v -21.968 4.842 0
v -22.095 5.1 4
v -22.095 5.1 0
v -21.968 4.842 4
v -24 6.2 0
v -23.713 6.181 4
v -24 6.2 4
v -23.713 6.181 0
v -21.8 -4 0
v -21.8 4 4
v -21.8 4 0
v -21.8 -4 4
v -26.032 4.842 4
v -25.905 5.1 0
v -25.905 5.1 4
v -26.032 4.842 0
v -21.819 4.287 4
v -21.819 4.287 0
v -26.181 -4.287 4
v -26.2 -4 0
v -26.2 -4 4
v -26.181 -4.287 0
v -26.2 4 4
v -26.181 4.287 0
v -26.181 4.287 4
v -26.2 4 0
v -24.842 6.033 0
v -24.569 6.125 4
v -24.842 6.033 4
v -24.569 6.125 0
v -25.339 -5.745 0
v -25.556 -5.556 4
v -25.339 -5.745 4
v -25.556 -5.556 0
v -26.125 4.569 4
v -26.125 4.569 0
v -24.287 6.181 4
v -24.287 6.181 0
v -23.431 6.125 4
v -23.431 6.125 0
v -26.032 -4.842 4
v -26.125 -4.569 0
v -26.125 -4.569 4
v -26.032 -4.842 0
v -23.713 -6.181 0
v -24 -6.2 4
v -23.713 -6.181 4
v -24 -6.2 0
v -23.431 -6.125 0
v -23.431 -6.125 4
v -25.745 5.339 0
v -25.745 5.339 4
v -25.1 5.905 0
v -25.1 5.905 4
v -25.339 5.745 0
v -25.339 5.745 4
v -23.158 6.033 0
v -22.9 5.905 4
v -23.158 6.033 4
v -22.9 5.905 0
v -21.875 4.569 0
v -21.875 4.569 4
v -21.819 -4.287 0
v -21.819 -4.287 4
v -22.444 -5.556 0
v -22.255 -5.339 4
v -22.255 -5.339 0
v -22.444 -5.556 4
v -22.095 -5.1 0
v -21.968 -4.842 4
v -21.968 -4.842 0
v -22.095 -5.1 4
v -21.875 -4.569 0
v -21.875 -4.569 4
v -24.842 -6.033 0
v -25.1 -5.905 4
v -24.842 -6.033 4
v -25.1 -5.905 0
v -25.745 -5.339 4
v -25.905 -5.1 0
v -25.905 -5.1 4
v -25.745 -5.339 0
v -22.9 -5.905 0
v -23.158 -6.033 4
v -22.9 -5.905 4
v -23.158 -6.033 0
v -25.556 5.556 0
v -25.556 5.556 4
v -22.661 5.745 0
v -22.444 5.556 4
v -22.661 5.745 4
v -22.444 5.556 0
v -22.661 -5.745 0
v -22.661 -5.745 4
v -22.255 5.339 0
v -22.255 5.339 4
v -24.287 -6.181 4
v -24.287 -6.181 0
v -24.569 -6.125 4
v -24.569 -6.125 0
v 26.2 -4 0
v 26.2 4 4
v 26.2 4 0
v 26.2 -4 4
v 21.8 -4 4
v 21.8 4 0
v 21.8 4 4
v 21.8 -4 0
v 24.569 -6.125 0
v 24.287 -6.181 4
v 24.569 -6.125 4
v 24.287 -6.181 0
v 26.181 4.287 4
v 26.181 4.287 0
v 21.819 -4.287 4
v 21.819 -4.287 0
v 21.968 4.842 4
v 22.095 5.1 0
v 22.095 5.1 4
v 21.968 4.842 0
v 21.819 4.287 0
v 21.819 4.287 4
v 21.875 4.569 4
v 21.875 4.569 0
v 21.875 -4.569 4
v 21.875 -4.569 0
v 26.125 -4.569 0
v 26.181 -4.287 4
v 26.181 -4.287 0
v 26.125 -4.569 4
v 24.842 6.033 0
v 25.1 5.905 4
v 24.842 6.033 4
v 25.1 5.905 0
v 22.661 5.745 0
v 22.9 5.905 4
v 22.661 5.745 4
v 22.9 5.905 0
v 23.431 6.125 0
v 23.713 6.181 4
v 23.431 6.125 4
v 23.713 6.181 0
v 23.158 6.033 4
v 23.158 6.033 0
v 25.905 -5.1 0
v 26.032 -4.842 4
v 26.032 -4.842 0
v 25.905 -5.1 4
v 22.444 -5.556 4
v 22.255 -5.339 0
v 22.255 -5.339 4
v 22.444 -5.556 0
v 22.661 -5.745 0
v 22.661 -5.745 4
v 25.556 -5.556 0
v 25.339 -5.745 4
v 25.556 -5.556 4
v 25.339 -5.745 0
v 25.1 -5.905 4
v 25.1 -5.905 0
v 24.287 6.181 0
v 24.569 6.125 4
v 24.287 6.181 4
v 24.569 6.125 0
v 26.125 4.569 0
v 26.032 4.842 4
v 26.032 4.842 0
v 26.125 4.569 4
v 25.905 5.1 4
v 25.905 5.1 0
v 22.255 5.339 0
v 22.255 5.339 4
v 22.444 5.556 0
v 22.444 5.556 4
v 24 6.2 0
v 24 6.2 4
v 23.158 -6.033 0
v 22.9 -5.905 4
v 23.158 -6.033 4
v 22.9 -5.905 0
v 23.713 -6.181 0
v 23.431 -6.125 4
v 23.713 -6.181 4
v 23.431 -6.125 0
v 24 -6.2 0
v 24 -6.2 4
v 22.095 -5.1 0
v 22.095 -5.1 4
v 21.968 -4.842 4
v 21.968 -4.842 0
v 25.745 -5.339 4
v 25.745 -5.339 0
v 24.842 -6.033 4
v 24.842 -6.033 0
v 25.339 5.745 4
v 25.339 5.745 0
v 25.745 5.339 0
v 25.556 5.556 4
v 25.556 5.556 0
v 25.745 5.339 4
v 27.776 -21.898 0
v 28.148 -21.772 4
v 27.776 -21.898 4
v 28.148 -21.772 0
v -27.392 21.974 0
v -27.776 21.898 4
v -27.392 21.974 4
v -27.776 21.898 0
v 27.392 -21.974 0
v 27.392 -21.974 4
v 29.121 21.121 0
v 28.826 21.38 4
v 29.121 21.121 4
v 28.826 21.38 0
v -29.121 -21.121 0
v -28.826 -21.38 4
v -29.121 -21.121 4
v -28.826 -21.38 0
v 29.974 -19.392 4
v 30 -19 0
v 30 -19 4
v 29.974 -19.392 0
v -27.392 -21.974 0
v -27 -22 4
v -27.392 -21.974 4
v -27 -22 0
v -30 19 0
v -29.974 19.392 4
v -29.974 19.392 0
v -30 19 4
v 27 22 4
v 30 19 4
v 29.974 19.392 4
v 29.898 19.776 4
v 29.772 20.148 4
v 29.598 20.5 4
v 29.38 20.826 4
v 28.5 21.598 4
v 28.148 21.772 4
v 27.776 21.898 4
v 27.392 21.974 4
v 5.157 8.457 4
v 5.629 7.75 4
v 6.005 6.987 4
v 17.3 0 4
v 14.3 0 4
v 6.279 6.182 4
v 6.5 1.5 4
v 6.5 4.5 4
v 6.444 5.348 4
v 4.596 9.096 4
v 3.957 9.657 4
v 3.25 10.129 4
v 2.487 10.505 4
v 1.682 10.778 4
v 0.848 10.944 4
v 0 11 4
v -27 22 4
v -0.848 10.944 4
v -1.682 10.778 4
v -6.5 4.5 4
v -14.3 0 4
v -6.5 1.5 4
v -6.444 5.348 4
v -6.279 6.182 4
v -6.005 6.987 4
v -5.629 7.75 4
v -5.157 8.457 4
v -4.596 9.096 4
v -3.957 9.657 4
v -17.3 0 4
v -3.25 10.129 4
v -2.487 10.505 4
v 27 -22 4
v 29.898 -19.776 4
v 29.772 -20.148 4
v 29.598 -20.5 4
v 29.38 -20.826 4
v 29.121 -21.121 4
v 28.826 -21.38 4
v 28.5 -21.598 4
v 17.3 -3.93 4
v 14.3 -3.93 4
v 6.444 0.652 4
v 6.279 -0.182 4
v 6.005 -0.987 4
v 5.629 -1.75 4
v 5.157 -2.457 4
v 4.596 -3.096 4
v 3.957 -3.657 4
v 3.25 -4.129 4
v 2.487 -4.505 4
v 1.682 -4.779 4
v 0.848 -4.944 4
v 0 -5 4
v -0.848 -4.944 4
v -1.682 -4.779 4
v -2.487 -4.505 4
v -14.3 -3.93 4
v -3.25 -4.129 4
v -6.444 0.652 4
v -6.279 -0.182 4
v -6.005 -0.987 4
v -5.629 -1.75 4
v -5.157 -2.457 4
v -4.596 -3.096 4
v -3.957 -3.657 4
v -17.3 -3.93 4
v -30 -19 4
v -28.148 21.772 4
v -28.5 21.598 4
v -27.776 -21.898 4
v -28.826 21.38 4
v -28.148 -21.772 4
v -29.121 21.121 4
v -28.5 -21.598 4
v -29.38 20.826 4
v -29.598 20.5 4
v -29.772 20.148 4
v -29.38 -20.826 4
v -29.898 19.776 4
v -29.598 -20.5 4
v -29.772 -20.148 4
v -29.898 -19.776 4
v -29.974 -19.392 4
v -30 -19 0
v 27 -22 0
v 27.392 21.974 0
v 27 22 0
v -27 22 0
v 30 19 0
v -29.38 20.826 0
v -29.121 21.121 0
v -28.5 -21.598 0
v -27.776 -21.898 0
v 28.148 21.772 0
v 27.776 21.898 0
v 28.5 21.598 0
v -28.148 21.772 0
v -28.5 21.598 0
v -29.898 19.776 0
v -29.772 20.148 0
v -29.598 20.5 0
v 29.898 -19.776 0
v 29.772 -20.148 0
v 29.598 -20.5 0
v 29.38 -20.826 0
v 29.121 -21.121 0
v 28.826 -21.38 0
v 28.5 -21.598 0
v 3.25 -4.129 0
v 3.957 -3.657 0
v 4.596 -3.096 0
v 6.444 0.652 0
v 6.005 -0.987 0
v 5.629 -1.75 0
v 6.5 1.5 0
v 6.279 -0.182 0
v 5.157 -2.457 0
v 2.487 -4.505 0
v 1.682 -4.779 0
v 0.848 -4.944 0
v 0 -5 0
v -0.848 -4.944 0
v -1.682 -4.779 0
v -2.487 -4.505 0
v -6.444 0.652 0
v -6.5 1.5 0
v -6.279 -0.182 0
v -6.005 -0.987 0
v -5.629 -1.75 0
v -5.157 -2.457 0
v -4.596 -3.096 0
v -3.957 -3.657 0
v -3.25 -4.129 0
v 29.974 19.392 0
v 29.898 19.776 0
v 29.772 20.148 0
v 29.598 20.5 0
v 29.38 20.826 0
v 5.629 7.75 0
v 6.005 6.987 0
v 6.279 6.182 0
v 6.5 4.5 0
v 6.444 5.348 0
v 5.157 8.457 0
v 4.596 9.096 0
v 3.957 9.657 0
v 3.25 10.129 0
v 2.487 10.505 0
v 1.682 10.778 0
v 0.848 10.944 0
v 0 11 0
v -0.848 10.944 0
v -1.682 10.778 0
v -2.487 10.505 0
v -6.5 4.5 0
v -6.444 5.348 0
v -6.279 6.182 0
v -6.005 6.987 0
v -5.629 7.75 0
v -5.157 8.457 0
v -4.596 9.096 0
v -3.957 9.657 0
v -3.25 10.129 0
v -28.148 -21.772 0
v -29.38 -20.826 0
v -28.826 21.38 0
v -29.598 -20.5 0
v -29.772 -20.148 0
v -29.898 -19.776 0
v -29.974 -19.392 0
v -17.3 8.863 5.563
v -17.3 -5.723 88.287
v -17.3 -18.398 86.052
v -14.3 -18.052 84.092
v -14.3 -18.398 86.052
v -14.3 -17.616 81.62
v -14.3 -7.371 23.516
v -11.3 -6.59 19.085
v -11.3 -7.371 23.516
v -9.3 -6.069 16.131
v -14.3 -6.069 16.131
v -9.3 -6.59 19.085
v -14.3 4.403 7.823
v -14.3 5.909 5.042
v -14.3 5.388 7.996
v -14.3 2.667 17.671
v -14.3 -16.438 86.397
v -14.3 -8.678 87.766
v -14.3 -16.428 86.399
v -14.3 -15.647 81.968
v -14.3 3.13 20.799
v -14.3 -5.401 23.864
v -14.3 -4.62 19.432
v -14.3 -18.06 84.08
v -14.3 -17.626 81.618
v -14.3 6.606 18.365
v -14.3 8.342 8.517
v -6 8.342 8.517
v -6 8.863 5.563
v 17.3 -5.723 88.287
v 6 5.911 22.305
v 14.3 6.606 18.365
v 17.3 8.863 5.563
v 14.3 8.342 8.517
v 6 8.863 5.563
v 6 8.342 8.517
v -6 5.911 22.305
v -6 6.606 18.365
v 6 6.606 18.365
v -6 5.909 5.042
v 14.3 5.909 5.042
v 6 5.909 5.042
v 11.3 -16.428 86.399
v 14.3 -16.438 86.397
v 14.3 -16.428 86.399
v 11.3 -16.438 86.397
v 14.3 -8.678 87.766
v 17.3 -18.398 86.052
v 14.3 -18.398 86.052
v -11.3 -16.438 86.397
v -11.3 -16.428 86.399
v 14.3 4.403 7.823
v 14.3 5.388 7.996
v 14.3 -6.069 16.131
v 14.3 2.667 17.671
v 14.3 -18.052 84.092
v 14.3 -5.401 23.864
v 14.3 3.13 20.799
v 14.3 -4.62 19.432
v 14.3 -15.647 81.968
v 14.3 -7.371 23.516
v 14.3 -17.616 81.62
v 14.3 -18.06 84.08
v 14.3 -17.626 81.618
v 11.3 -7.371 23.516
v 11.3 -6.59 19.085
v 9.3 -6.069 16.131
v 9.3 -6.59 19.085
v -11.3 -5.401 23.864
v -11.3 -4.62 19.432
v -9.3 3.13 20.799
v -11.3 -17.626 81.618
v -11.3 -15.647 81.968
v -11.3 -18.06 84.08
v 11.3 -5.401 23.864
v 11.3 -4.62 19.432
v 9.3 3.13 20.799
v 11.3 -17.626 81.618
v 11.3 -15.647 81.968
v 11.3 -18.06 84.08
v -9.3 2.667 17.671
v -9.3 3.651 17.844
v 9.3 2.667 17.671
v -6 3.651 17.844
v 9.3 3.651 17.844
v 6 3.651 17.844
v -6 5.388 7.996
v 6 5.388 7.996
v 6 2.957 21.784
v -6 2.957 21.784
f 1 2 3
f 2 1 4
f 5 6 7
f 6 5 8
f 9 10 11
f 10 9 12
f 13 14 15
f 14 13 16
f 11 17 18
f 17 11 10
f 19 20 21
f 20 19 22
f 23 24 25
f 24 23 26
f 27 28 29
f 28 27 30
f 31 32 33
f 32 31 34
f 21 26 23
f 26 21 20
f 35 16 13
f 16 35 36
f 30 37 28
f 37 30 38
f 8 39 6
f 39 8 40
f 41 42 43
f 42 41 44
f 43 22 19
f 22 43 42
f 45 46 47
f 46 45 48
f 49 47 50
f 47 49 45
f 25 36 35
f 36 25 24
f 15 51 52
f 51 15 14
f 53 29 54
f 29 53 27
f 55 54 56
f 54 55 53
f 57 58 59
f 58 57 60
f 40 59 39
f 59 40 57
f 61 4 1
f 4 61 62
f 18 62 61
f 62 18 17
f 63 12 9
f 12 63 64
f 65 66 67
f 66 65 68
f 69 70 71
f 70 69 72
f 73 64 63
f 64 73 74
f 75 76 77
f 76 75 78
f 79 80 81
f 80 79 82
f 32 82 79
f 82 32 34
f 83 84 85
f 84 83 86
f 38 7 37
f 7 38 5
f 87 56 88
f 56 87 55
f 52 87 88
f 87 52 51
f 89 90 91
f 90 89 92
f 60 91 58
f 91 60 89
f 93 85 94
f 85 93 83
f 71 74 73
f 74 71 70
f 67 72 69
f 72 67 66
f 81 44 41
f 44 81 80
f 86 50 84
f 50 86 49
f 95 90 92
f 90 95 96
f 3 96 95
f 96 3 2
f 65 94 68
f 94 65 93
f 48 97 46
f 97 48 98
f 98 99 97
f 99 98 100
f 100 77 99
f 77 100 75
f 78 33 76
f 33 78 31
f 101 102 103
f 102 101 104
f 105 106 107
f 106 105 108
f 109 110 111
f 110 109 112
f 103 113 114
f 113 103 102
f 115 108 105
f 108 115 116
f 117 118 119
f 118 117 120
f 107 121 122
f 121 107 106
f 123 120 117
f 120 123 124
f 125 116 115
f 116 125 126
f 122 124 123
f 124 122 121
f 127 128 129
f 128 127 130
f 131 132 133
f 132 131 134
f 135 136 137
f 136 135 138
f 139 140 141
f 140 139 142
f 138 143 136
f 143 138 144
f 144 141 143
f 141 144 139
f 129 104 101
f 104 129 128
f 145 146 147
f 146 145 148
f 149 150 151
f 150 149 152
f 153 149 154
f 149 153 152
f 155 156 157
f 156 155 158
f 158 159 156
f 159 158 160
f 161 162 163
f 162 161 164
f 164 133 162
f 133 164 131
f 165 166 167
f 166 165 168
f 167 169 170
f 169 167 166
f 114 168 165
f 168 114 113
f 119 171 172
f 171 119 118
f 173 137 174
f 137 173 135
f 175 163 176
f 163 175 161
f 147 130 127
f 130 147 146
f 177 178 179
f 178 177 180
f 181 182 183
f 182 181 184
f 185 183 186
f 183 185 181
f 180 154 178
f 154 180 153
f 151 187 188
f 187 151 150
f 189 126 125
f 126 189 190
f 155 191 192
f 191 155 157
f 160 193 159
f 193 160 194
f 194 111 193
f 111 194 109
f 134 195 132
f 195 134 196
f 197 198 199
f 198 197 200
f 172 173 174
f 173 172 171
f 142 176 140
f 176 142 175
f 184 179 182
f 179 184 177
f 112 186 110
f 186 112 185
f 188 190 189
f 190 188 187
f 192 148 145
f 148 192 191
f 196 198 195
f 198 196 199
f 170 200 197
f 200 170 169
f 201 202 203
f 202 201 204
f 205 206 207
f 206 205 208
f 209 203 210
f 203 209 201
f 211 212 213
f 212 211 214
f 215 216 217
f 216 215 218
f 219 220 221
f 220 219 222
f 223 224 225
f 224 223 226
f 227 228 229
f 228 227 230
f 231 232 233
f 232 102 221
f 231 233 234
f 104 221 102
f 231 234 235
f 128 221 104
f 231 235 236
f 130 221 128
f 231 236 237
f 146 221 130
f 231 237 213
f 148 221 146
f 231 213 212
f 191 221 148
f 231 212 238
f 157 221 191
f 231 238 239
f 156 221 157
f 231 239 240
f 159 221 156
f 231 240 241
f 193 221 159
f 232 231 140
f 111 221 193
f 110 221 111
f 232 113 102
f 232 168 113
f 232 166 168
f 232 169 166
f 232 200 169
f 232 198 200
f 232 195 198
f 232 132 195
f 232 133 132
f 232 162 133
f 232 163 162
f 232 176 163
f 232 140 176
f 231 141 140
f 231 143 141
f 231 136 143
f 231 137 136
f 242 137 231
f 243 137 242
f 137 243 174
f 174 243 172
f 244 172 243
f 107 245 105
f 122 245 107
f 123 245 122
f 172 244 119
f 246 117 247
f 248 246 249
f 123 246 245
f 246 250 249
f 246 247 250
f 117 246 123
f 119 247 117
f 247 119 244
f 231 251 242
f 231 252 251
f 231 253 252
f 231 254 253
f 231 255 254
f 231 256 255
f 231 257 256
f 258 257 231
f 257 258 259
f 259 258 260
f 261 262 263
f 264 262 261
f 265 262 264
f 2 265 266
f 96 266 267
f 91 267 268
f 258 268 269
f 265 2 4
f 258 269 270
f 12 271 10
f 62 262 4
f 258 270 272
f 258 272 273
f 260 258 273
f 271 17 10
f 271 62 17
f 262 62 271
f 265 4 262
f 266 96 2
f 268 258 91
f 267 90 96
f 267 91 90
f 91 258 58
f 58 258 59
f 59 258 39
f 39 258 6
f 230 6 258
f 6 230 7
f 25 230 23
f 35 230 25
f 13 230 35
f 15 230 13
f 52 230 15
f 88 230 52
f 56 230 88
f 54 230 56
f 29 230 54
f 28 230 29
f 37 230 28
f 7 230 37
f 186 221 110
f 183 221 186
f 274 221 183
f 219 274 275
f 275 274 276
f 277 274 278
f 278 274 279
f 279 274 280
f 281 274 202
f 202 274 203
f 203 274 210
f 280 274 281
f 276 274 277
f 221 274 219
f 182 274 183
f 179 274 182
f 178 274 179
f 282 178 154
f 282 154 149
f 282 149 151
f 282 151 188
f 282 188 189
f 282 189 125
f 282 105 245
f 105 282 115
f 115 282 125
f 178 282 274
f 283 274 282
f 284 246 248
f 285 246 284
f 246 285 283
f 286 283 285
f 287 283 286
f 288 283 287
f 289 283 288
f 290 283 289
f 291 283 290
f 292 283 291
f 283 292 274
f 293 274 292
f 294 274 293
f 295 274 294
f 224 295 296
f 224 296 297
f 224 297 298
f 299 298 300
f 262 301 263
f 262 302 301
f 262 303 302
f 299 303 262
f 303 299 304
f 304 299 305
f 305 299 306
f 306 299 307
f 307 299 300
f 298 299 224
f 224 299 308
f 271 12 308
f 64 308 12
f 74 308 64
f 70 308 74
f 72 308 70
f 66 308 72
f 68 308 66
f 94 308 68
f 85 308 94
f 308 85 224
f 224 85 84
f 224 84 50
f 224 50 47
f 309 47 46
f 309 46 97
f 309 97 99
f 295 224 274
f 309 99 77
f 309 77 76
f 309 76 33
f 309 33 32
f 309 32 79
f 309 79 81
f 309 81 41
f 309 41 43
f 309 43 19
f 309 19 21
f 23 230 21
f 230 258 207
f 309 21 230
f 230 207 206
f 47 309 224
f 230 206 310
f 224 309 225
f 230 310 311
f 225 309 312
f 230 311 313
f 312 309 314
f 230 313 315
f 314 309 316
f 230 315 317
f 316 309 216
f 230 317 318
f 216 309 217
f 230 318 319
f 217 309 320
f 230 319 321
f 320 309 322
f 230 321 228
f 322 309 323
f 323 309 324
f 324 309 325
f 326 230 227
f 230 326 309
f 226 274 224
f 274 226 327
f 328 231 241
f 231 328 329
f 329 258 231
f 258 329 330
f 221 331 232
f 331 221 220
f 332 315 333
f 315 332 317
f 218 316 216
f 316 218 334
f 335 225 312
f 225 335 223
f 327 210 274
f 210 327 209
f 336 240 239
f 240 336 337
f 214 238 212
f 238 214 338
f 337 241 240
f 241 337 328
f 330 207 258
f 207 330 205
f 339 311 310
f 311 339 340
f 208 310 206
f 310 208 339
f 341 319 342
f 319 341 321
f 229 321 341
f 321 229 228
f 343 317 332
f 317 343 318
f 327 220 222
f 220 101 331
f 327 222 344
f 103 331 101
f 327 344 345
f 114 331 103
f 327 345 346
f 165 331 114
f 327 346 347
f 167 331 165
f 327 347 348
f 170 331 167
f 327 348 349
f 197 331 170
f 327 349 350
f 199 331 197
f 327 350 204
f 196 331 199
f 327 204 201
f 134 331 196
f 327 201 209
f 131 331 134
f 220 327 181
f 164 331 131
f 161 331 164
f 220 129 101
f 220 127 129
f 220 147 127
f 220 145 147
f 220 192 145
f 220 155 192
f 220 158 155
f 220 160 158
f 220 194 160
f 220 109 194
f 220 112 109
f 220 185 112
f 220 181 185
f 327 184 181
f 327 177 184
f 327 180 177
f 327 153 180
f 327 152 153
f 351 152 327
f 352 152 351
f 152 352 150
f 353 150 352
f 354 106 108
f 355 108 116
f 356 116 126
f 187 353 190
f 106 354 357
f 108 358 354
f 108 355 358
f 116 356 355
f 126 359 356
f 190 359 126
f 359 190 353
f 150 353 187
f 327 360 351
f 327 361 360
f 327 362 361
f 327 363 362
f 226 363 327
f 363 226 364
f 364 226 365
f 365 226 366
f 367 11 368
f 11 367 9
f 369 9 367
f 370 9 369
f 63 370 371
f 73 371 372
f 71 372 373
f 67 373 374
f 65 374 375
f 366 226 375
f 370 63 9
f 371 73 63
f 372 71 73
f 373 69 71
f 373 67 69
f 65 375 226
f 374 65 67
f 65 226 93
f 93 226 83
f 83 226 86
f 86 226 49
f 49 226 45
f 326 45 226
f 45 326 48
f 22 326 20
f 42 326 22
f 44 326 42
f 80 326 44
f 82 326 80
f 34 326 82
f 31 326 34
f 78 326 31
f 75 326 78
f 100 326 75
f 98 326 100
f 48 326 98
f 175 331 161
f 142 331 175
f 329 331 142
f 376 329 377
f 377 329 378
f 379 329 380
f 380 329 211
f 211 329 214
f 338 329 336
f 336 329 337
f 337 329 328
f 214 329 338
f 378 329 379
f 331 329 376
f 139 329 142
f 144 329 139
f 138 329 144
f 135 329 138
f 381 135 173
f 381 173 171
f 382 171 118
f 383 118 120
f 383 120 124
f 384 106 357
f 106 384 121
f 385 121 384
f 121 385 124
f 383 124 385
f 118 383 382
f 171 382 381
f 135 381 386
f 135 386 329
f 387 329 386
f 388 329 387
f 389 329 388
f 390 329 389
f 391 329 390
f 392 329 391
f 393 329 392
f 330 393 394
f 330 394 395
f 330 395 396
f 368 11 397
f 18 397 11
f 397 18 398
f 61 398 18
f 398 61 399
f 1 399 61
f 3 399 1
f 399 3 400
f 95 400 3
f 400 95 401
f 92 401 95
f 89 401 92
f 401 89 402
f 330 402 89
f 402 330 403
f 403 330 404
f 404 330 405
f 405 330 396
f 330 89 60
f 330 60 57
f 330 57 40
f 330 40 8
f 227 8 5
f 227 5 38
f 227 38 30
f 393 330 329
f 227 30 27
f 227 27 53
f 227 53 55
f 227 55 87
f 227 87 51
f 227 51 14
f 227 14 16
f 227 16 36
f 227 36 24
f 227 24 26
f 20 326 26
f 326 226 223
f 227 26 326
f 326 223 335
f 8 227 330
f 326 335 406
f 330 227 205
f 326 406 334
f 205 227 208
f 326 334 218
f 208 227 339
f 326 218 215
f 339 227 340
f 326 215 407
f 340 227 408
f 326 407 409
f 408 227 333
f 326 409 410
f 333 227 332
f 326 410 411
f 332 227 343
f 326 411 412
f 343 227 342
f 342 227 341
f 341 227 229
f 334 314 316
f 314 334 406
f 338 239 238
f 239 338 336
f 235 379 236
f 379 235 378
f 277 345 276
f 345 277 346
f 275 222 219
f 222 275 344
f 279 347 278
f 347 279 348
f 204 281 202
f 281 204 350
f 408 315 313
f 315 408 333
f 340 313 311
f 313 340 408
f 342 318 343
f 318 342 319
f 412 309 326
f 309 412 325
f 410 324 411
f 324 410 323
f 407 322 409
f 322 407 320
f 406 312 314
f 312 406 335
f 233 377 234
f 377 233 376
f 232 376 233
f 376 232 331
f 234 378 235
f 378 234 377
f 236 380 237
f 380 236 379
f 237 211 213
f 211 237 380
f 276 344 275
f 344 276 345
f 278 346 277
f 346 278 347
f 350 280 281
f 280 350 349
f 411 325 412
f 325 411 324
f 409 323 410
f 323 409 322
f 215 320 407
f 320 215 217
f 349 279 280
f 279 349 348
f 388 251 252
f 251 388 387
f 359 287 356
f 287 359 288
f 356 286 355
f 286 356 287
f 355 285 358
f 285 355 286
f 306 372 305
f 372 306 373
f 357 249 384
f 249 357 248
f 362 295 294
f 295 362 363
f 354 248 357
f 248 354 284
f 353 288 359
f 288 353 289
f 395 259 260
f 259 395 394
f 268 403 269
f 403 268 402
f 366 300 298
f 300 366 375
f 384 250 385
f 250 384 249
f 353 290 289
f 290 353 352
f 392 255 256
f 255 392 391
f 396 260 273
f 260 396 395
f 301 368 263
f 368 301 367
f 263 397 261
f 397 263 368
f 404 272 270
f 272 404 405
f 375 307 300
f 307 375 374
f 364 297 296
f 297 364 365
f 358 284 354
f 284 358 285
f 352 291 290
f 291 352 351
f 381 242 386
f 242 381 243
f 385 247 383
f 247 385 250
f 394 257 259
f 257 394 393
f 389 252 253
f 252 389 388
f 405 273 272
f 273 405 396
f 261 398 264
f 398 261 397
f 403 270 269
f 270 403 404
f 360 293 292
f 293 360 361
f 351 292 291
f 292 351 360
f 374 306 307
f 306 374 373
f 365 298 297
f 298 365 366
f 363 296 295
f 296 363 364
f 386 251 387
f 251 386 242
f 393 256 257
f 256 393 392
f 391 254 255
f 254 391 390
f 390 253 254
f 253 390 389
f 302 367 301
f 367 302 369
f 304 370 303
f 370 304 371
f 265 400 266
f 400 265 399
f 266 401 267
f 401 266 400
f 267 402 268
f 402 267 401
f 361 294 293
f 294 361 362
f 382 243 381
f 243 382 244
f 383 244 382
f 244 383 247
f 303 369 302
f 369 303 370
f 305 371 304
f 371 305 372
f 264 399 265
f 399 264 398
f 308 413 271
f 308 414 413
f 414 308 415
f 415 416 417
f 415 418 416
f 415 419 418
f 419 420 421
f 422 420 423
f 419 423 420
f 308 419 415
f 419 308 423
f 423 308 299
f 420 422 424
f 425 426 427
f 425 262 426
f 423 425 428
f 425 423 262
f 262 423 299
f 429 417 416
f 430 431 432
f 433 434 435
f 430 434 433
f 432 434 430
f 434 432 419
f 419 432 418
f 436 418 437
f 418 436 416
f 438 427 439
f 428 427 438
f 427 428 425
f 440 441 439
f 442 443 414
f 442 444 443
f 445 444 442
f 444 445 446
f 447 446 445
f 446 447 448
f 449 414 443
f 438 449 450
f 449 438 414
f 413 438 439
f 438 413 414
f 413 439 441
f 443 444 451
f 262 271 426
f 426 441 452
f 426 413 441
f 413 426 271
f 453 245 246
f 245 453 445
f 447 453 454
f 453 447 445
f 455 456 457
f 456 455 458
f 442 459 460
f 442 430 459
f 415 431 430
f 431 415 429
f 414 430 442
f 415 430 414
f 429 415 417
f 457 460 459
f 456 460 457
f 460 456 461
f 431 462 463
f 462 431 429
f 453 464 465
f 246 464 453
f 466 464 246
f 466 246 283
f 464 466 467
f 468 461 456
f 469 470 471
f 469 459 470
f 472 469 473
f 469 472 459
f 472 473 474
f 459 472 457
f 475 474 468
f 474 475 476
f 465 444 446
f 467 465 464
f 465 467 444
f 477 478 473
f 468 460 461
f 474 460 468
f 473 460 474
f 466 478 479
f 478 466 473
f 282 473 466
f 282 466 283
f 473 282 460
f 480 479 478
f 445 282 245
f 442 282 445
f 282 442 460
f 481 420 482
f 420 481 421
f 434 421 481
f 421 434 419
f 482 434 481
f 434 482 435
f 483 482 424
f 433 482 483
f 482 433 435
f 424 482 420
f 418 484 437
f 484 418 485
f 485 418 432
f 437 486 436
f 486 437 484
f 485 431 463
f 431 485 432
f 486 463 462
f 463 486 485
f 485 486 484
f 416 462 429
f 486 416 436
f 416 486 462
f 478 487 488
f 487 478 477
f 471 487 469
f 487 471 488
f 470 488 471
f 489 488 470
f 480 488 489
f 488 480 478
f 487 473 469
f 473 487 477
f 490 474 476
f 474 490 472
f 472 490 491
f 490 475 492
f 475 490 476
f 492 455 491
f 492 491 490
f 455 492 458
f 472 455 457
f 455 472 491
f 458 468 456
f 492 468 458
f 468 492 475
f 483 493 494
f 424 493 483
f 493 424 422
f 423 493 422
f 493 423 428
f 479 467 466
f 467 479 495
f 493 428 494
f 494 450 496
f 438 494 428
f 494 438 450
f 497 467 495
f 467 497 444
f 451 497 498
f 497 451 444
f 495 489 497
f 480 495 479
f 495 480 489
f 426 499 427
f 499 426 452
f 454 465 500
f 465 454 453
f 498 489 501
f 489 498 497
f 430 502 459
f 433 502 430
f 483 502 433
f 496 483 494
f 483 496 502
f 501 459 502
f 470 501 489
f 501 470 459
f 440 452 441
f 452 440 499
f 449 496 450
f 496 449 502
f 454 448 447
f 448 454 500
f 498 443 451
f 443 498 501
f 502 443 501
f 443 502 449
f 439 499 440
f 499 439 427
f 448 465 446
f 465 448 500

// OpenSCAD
// Camera mount: holds a TTGO T-Camera (ESP32-WROVER-B, OV2640 V1.7) upright on
// the rover's Makeblock plate, camera/PIR/OLED facing forward, tilted down.
//
// Design: a raised cradle on a pedestal. Two side rails grip the PCB's long
// edges in slots; the front is fully open (nothing in front of the lens, PIR,
// or OLED). The board's BOTTOM edge carries the micro-USB port and the 5-pin
// connector, so the cradle floats `usb_clear` mm above the base with an open
// gap underneath: the board rests on two small corner tabs, the USB plug hangs
// through the gap, and the cable exits rearward through a window in the
// pedestal. The base bolts to the Makeblock plate with M4 hardware on the
// plate's 8mm hole grid.
//
// Render:  openscad -o camera-mount.stl camera-mount.scad
// Print:   base down, no brim, tree supports on auto (see hardware/README.md)
//
// !! PLACEHOLDER DIMENSIONS - the pcb_* and usb_* values are estimates and
// !! MUST be replaced with caliper measurements of the real board first.

// ---- Board (MEASURE THESE) --------------------------------------------------
pcb_w     = 28.0;   // PCB width  (bottom/top edge), mm      <- measure
pcb_l     = 68.0;   // PCB length (side edge, bottom->top), mm <- measure
pcb_t     = 1.27;    // PCB thickness, mm                     <- measure
comp_back = 6.0;    // tallest component on the BACK face, mm <- measure
usb_x     = 0.0;    // micro-USB centre offset from the board's centreline
                    // along the bottom edge (+ = right, viewed from the
                    // lens side), mm                        <- measure
usb_plug_w = 12.0;  // width of the micro-USB PLUG overmold (not the socket)
usb_plug_t = 8.0;   // thickness of the plug overmold (front-to-back)
usb_clear  = 16.0;  // gap under the board for the plug body (cable goes straight down)
cable_slot_w = 13.0; // base pass-through for the cable, wide enough for the plug overmold
cable_slot_l = 16.0; // ... and long enough to cover the 10-degree tilt offset

// ---- Mount geometry --------------------------------------------------------
wall      = 3.0;    // rail/backplate/pedestal thickness
clear     = 0.3;    // slot clearance around the PCB (PETG shrinks a little)
rail_d    = 3.0;    // how deep each rail overlaps the PCB edge
lip       = 2.0;    // front lip height that stops the board sliding forward
lip_len   = 4.5;    // length of each corner lip along the board edge (must stay
                    // inside the component-free zones at both board ends)
tab_w     = 5.0;    // width of the two bottom corner tabs the board rests on
tilt      = 10;     // degrees the camera looks DOWN from horizontal
base_l    = 44;     // base plate length (along the rover's travel axis)
base_t    = 4.0;    // base plate thickness (v6: was 3; v5 tore at the base)

inner_w  = pcb_w + 2*clear;
inner_t  = pcb_t + 2*clear;
outer_w  = inner_w + 2*wall;
depth    = comp_back + wall + inner_t + lip;   // cradle front-to-back
bolt_x   = 24;      // v6 (2026-10-19): bolts at +/-24 (three grid pitches, outside the pedestal footprint), clear of the cable slot - v5 had them at +/-8, inside it, and tore there in the fall
base_w   = max(outer_w + 8, 2 * bolt_x + 12);   // wide enough for the bolts

// ---- Makeblock plate interface ---------------------------------------------
mb_pitch  = 8;      // Makeblock hole grid, mm
m4_hole   = 4.4;    // M4 clearance
slot_len  = 8;      // slots let the mount sit on either 8mm or 16mm centres

$fn = 48;

module base() {
  difference() {
    linear_extrude(base_t)
      offset(r=3) offset(delta=-3) square([base_w, base_l], center=true);
    for (x = [-bolt_x, bolt_x])
      hull() for (y = [-slot_len/2, slot_len/2])
        translate([x, y, -1]) cylinder(d=m4_hole, h=base_t+2);
    // cable pass-through: the USB lead runs straight down from the board's
    // bottom edge, in line with the board, through here and then through the
    // Makeblock plate's own hole on the centreline below. Centred slightly
    // aft (+y) because the 10-degree lean puts the bottom edge behind the pivot.
    hull() for (y = [3 - (cable_slot_l - cable_slot_w)/2, 3 + (cable_slot_l - cable_slot_w)/2])
      translate([usb_x, y, -1]) cylinder(d=cable_slot_w, h=base_t+2);
  }
}

// Built "flat": board face toward +Z, board length along +Y, bottom edge at
// y = 0. The pedestal extends below y = 0 down to y = -usb_clear.
module cradle_flat() {
  z0 = -(comp_back + wall);            // back face of the back plate
  h  = pcb_l;
  difference() {
    union() {
      // back plate, running from the pedestal foot up to the top of the board
      translate([-outer_w/2, -usb_clear, z0]) cube([outer_w, usb_clear + h, wall]);
      // side rails (full board length) and their pedestal legs below
      for (s = [-1, 1])
        translate([s*(inner_w/2) - (s<0 ? wall : 0), -usb_clear, z0])
          cube([wall, usb_clear + h, depth]);
      // front lips at the FOUR CORNERS only. The board's front face is busy
      // right up to its edges (buttons at the edges ~8 mm up, OLED glass
      // nearly full-width near the top), so full-length lips would collide;
      // only the bottom ~8 mm and top ~6 mm are component-free. Insert the
      // board bottom-first under the lower lips, then tilt the top back past
      // the chamfered upper lips.
      for (s = [-1, 1]) {
        x0 = (s > 0) ? inner_w/2 - rail_d : -inner_w/2;
        translate([x0, 0, inner_t]) cube([rail_d, lip_len, lip]);            // bottom corners
        translate([x0, h - lip_len, inner_t])                                  // top corners, chamfered
          hull() {
            cube([rail_d, lip_len, 0.01]);
            translate([0, 0, lip]) cube([rail_d, lip_len - lip, 0.01]);
          }
      }
      // two bottom corner tabs INSIDE the rails, under the board's bottom
      // edge, so the board actually rests on them (same v3 fix)
      for (s = [-1, 1])
        translate([s > 0 ? inner_w/2 - tab_w : -inner_w/2, -wall, z0])
          cube([tab_w, wall, depth]);
    }
    // the USB plug hangs through the gap between the tabs; make sure the gap
    // is at least the plug width, centred on the port
    translate([usb_x - usb_plug_w/2, -usb_clear - 1, z0 - 1])
      cube([usb_plug_w, usb_clear + 2, depth + 2]);
    // cable exit window through the back plate, below the board
    translate([-outer_w/2 + wall, -usb_clear + wall, z0 - 1])
      cube([outer_w - 2*wall, usb_clear - 2*wall, wall + 2]);
  }
}

module mount() {
  base();
  // Stand the cradle up: 90 deg about X points the board face along -Y
  // (forward) with the board length up +Z; more than 90 leans the top
  // forward so the lens looks DOWN by `tilt`. The pedestal foot (y = -usb_clear
  // in flat coords) lands on the base.
  translate([0, 0, base_t])
    rotate([90 + tilt, 0, 0])
      translate([0, usb_clear, 0])
        cradle_flat();
}

mount();
